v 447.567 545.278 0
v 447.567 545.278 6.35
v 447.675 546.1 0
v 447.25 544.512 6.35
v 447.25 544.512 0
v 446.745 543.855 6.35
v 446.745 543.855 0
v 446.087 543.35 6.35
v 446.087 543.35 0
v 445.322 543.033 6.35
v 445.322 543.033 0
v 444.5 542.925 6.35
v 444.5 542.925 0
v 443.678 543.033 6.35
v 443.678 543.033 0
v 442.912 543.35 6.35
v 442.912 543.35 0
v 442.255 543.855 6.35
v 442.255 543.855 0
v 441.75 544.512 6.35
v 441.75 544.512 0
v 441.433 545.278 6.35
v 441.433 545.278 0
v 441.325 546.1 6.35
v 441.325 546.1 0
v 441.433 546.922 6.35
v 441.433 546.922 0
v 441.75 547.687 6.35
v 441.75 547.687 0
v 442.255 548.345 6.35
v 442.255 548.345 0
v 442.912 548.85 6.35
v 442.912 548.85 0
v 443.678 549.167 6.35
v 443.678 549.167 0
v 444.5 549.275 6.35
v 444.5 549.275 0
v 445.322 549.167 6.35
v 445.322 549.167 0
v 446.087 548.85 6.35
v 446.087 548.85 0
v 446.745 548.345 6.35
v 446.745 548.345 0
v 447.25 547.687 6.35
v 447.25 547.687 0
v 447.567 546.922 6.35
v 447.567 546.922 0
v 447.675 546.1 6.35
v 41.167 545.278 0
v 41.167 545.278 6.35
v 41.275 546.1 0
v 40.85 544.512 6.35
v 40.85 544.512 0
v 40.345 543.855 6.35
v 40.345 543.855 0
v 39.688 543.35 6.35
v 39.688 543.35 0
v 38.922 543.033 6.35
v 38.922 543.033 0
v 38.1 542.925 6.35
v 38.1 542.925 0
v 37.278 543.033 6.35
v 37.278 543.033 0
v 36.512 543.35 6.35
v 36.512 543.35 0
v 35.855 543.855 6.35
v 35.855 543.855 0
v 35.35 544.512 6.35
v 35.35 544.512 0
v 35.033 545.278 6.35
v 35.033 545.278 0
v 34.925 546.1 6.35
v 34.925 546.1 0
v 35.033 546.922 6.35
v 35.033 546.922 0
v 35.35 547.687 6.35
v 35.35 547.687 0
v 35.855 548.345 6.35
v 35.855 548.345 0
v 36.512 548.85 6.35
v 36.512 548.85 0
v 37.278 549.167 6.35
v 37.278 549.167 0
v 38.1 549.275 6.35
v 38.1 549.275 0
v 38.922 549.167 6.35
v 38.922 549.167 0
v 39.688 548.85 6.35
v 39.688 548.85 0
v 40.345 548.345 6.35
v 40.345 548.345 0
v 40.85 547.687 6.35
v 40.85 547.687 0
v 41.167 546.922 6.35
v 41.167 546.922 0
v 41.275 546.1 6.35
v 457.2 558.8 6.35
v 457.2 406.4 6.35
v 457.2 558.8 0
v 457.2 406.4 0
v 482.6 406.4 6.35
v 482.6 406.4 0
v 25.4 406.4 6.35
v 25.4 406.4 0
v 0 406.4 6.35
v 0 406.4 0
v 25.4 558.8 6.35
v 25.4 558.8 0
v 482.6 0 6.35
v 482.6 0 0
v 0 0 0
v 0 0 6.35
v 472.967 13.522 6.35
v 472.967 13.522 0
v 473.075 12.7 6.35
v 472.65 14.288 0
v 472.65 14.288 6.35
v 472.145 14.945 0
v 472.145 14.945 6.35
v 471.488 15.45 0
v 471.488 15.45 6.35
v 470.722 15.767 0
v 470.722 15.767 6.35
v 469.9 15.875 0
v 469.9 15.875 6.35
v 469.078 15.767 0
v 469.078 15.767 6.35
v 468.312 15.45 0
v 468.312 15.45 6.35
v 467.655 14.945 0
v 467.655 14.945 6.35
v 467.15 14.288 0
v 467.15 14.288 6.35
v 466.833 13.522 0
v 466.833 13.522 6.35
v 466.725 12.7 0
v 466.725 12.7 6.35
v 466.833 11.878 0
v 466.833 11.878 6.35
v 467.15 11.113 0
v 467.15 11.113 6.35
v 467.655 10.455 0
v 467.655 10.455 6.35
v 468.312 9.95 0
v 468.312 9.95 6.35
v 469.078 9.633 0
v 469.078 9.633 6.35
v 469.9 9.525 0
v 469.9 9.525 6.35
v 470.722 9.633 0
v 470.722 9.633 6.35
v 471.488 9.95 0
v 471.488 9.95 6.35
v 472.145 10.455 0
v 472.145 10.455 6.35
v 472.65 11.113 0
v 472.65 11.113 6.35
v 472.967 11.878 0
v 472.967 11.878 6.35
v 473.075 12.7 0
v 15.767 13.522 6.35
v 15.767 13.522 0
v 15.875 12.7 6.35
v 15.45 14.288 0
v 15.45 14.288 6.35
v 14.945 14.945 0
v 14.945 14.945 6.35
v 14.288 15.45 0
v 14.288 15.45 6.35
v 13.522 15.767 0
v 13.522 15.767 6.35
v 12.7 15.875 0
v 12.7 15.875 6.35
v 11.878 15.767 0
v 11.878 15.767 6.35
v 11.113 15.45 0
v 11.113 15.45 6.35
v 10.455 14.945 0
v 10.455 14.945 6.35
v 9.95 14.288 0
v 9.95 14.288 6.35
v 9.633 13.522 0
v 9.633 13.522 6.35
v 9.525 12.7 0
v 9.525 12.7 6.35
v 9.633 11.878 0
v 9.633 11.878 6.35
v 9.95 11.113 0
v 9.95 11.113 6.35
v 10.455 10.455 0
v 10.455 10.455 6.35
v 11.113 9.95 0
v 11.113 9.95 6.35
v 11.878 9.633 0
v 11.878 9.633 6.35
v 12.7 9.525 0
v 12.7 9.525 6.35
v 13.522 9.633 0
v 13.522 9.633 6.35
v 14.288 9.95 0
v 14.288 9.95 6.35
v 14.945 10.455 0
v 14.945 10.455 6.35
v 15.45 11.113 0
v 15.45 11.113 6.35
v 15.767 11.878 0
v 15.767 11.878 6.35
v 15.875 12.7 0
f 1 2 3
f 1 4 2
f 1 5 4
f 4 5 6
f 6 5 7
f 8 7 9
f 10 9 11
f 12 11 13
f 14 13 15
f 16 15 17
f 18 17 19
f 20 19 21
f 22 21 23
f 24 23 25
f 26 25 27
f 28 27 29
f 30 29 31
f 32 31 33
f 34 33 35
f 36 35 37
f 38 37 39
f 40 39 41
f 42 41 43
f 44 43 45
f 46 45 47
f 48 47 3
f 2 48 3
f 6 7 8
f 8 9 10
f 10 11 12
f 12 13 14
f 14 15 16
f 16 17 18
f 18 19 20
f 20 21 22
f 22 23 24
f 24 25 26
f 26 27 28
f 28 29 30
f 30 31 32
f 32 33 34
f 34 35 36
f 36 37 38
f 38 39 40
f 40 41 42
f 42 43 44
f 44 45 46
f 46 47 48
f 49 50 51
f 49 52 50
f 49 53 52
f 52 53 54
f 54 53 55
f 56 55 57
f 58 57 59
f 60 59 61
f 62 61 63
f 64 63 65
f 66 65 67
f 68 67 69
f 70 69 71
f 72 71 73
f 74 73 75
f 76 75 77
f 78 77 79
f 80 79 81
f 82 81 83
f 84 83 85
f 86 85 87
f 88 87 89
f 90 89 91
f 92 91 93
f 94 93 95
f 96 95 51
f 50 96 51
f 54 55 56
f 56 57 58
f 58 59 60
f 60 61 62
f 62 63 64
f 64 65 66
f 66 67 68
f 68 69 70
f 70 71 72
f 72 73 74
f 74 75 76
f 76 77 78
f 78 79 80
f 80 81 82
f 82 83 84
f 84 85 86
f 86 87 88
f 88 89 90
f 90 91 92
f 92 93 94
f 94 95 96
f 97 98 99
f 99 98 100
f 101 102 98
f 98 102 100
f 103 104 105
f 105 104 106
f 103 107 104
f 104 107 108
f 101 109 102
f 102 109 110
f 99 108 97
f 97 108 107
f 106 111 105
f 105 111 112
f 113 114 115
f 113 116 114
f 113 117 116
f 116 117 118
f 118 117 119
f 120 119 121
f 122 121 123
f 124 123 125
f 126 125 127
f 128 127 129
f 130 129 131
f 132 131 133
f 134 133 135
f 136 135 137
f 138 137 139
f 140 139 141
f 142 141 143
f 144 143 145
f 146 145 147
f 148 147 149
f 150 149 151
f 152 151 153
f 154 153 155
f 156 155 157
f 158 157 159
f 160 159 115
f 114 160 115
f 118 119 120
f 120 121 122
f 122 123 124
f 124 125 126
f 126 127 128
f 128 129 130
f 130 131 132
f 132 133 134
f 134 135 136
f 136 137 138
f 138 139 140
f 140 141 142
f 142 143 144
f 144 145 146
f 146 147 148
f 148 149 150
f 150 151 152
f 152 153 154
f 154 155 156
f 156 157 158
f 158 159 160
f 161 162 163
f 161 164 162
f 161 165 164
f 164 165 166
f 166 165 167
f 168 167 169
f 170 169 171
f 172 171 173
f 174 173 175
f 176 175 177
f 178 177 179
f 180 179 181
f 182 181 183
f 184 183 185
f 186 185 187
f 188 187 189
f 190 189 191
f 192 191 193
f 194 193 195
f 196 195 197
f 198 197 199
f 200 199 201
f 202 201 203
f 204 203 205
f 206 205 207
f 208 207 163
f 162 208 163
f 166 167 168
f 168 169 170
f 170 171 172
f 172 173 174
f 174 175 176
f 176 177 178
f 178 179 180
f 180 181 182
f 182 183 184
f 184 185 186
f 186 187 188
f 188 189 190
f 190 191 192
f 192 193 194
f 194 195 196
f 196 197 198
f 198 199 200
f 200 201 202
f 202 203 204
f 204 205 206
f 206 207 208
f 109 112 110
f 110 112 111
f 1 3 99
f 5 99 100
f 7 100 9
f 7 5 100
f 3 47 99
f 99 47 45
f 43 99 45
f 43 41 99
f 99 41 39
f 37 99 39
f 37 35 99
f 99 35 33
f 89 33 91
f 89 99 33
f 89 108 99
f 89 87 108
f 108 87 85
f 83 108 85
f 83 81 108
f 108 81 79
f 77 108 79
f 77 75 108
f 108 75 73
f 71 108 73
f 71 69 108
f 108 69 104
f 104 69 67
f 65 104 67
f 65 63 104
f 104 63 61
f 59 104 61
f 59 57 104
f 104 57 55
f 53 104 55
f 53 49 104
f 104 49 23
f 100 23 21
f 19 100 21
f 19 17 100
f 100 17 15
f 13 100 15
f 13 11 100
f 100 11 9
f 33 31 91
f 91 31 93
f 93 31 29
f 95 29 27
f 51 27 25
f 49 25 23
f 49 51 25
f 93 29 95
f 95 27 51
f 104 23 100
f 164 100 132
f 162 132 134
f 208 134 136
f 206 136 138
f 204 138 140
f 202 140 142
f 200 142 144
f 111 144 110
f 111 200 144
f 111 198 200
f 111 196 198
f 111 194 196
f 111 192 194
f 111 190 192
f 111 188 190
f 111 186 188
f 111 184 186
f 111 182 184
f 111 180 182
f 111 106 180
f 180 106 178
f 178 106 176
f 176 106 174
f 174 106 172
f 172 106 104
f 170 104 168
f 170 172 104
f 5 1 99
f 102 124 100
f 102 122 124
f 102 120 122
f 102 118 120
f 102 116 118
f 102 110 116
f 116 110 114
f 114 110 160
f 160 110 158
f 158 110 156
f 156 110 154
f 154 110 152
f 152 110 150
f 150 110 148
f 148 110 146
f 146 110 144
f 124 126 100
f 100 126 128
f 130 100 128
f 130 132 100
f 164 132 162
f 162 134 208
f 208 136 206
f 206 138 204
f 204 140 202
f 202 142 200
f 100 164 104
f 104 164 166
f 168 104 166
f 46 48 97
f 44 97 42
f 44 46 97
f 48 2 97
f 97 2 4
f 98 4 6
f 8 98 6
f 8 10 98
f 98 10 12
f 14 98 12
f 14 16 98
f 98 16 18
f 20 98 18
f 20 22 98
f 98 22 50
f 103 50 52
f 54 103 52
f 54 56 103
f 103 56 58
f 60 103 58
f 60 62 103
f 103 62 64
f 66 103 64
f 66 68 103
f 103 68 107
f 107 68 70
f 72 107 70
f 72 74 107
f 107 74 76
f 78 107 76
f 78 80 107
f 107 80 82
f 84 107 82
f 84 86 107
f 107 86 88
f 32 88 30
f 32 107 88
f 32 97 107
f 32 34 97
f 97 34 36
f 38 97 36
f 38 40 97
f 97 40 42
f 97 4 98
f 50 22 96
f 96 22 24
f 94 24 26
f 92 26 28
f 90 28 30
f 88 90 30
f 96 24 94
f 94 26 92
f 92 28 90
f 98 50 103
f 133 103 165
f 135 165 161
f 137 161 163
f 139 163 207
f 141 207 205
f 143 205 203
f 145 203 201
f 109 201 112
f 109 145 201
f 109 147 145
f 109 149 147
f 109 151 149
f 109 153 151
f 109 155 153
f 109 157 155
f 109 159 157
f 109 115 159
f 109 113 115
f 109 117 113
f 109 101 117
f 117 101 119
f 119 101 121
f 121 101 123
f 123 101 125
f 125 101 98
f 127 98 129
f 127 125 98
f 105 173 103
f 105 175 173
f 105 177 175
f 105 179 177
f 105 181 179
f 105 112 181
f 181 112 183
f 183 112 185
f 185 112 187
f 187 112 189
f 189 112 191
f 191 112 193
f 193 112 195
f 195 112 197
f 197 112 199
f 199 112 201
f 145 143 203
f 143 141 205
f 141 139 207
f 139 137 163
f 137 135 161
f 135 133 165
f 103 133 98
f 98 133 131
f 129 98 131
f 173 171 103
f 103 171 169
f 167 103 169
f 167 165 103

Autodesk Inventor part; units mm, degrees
ref_plane "YZ Plane" through (0, 0, 0) normal (1, 0, 0) x (0, 1, 0)
ref_plane "XZ Plane" through (0, 0, 0) normal (0, 1, 0) x (-1, 0, 0)
ref_plane "XY Plane" through (0, 0, 0) normal (0, 0, 1) x (1, 0, 0)
sketch "Sketch1" plane through (0, 0, 0) normal (0, 0, 1) x (1, 0, 0)
  line L0 (0, 0) -> (482.6, 0)
  line L1 (482.6, 0) -> (482.6, 558.8)
  line L2 (482.6, 558.8) -> (0, 558.8)
  line L3 (0, 558.8) -> (0, 0)
  circle A0 centre (12.7, 12.7) radius 3.175
  circle A1 centre (469.9, 12.7) radius 3.175
  dimension "d0" = 558.8
  dimension "d1" = 482.6
  dimension "d2" = 6.35
  dimension "d3" = 6.35
  dimension "d4" = 12.7
  dimension "d5" = 12.7
  dimension "d7" = 12.7
  dimension "d8" = 12.7
extrude "Extrusion1" add sketch "Sketch1" along normal blind 6.35
sketch "Sketch2" plane through (0, 0, 0) normal (0, 0, -1) x (-1, 0, 0)
  line L0 (0, 558.8) -> (0, 0) projected
  line L1 (-482.6, 558.8) -> (0, 558.8) projected
  line L2 (-482.6, 0) -> (-482.6, 558.8) projected
  line L3 (-482.6, 558.8) -> (-457.2, 558.8)
  line L4 (-457.2, 558.8) -> (-457.2, 406.4)
  line L5 (-457.2, 406.4) -> (-482.6, 406.4)
  line L6 (-482.6, 406.4) -> (-482.6, 558.8)
  line L7 (0, 558.8) -> (-25.4, 558.8)
  line L8 (-25.4, 558.8) -> (-25.4, 406.4)
  line L9 (-25.4, 406.4) -> (0, 406.4)
  line L10 (0, 406.4) -> (0, 558.8)
  dimension "d13" = 25.4
  dimension "d16" = 152.4
extrude "Extrusion2" cut sketch "Sketch2" against normal through all
sketch "Sketch3" plane through (0, 0, 6.35) normal (0, 0, 1) x (1, 0, 0)
  line L0 (457.2, 406.4) -> (457.2, 558.8) projected
  line L1 (25.4, 558.8) -> (457.2, 558.8) projected
  line L2 (25.4, 558.8) -> (25.4, 406.4) projected
  circle A0 centre (38.1, 546.1) radius 3.175
  circle A1 centre (444.5, 546.1) radius 3.175
  dimension "d17" = 6.35
  dimension "d18" = 6.35
  dimension "d19" = 12.7
  dimension "d20" = 12.7
  dimension "d21" = 12.7
  dimension "d22" = 12.7
extrude "Extrusion3" cut sketch "Sketch3" against normal through all
properties part number "ElectronicsBoard" material "Wood (Birch)"
